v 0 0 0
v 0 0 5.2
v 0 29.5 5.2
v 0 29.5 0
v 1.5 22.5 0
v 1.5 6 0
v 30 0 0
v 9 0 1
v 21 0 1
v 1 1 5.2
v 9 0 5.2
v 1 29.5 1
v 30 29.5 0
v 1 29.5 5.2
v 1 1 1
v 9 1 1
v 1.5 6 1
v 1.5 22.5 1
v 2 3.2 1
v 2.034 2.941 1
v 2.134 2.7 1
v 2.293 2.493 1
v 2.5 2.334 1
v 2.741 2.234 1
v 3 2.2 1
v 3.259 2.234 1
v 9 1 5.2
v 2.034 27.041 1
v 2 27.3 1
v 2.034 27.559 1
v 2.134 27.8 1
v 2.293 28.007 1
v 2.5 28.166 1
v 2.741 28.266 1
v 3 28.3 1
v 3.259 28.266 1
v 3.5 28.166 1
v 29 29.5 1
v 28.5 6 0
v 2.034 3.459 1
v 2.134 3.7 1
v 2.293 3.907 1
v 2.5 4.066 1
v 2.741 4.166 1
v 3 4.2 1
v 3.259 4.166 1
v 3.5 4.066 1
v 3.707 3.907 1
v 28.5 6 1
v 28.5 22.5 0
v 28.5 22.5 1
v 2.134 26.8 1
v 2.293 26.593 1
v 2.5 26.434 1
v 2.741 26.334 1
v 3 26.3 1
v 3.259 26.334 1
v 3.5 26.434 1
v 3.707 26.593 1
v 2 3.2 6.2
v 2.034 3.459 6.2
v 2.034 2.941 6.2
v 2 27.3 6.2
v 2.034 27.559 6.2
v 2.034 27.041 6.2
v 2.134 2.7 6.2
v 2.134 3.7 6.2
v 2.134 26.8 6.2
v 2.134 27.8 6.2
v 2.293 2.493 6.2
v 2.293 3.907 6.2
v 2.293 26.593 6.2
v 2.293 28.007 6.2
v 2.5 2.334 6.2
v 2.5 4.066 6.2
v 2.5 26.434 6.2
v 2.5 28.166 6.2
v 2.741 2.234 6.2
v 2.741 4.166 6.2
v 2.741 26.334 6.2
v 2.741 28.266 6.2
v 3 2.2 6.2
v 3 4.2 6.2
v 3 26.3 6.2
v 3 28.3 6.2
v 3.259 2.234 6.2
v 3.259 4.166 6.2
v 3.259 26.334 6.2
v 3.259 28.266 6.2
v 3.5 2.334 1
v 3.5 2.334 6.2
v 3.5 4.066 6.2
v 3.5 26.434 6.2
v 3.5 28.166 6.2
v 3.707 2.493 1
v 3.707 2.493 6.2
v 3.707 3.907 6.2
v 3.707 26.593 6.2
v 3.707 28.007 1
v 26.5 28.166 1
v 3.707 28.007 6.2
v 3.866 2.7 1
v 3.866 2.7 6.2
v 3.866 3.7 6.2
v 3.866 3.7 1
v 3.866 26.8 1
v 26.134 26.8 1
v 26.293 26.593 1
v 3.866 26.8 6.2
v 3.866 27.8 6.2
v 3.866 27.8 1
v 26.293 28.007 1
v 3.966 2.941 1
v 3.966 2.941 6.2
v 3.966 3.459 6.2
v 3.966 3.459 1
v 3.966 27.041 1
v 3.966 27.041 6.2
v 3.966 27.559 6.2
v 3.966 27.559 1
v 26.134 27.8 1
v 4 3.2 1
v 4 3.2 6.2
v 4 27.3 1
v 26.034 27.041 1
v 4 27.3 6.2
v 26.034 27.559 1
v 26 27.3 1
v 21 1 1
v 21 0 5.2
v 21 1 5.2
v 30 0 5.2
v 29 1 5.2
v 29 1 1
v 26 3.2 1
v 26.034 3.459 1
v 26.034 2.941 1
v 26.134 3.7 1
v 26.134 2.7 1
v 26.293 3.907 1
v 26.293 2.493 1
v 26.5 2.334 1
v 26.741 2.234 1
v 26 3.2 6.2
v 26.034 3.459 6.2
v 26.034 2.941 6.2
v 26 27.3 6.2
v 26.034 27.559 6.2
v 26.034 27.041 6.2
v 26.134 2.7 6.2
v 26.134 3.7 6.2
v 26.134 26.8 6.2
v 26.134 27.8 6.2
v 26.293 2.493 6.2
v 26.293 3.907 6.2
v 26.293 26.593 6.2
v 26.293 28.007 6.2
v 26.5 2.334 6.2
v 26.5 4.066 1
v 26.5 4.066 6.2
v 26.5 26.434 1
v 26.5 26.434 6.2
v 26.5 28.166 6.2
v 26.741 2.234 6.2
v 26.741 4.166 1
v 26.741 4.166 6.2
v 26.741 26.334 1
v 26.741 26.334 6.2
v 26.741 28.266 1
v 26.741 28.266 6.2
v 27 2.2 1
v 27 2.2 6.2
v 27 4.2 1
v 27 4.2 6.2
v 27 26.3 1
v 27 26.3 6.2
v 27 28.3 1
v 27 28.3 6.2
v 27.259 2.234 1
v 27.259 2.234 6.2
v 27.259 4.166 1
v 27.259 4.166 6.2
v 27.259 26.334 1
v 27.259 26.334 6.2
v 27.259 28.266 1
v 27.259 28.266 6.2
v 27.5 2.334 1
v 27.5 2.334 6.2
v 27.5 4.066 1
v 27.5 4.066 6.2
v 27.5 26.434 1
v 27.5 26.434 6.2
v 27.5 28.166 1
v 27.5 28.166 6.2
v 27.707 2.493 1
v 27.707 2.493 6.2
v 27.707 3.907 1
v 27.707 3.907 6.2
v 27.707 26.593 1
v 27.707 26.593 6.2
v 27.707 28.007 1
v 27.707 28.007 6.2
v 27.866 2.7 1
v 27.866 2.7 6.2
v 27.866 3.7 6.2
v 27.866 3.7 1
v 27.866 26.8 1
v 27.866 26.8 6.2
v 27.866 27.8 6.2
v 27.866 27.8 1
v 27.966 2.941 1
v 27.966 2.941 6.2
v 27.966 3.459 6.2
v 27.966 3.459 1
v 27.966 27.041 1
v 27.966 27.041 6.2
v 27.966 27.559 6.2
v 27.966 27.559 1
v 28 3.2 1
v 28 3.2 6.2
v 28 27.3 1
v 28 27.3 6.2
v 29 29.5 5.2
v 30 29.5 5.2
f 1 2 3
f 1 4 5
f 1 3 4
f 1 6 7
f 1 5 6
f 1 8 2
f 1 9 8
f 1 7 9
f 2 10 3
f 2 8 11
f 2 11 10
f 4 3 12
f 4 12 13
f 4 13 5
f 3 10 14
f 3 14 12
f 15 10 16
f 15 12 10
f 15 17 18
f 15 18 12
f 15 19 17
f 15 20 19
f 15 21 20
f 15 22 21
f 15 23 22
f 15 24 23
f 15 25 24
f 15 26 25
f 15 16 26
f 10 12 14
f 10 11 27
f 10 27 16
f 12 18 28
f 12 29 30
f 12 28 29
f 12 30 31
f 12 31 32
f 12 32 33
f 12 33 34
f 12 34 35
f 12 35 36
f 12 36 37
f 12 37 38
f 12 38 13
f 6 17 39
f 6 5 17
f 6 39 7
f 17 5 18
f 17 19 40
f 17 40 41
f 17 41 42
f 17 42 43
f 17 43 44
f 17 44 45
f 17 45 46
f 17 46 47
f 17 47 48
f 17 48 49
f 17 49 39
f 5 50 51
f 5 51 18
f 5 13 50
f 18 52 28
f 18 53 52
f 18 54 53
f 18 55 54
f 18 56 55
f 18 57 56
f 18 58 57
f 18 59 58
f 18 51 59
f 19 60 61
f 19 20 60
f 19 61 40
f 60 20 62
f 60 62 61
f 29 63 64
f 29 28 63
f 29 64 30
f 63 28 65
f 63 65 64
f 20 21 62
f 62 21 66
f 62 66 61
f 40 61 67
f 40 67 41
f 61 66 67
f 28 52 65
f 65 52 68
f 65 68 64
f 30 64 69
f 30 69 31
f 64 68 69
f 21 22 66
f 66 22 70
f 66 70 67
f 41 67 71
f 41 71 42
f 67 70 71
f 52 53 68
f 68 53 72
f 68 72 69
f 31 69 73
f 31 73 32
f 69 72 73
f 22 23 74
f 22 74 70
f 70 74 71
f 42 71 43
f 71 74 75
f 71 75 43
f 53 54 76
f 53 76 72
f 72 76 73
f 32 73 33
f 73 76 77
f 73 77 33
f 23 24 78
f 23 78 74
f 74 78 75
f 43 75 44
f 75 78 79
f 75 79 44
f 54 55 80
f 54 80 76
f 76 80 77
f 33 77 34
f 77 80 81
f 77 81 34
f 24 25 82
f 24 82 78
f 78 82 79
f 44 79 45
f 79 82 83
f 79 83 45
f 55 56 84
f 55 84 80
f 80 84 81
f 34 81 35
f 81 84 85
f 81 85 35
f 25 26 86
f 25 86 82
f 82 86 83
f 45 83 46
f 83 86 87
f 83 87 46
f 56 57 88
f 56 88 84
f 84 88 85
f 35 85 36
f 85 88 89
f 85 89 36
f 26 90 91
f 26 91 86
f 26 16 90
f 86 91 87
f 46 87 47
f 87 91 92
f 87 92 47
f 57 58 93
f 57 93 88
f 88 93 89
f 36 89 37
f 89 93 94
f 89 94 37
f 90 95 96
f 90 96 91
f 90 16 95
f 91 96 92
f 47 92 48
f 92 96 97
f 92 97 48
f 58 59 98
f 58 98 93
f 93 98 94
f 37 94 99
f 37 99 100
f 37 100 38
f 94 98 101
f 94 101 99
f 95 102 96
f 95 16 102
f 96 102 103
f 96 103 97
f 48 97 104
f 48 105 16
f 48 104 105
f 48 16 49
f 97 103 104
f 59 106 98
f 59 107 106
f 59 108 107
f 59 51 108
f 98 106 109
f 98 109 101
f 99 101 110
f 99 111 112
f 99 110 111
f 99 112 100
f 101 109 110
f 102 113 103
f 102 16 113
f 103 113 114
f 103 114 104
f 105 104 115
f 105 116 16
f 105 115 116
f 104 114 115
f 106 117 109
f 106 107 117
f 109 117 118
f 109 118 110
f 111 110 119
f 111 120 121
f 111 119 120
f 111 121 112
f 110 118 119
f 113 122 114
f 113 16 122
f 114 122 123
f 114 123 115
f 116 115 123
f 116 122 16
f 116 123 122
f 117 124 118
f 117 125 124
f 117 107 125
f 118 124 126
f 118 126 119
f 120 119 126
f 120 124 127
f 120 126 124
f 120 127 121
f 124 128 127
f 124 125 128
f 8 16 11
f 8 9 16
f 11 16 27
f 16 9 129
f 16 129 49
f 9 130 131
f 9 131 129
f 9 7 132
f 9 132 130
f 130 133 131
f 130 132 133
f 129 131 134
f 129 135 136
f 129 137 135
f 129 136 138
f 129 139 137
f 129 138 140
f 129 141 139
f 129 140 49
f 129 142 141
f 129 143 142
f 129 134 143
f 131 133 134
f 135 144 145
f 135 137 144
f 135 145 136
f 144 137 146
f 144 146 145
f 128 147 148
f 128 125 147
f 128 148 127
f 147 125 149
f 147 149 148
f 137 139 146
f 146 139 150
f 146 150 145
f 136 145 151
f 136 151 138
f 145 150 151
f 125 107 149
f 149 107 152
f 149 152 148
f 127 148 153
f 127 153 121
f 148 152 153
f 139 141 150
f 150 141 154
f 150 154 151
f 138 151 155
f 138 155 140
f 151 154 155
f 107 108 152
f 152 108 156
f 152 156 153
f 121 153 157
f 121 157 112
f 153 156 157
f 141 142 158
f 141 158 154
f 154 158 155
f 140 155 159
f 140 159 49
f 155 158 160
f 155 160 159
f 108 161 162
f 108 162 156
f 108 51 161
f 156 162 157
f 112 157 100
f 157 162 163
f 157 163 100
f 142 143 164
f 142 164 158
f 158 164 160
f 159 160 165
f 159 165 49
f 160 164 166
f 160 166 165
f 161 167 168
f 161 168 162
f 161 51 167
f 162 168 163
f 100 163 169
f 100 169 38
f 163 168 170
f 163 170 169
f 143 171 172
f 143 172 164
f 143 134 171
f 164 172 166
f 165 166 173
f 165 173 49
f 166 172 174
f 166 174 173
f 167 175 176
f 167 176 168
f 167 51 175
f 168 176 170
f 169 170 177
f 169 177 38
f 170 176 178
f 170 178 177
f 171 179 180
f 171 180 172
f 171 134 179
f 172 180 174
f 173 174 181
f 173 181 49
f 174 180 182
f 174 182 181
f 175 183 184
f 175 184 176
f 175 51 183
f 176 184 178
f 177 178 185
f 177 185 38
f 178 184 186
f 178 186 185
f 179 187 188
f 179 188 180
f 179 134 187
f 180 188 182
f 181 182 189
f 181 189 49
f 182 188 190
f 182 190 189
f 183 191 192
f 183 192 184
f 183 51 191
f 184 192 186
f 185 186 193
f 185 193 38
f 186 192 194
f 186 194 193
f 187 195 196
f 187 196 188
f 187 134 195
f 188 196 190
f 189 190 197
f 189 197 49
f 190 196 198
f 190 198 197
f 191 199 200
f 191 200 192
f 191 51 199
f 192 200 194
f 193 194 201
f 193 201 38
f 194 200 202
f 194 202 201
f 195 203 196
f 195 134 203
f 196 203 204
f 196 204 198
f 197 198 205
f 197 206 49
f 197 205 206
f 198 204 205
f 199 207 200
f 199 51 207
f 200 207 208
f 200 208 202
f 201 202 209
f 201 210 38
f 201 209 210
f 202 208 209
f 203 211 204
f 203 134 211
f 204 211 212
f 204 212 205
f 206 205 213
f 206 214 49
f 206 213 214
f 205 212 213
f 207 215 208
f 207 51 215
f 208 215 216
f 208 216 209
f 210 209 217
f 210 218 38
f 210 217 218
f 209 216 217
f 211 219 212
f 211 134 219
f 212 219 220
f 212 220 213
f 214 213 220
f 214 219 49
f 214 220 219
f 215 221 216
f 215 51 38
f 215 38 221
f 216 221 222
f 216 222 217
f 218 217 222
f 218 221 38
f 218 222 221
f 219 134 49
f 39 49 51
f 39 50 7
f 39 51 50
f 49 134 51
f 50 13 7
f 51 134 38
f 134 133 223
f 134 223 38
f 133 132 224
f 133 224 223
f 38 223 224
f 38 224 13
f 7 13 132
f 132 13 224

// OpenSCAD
// OLED PCB dimensions (you can adjust as needed)
oled_width = 28;
oled_height = 28.5;
oled_thickness = 4.2; // PCB thickness

// Design parameters
wall = 1;             // Side and bottom wall thickness
back_thickness = 1; // Back cover thickness
clearance = 0.5;      // Fit tolerance
pin_diameter = 2;
pin_height = 5.2;
hole_offset_x = 2;
hole_offset_y = 2.2;

// Cutout parameters
cutout_width = 12;
cutout_height = 5;
back_cutout_sizeX=16.5;
back_cutout_sizeY = 27;

module oled() {
    // Main enclosure body with cutouts
    difference() {
        // Solid block
        cube([
            oled_width + 2 * wall,
            oled_height + wall,
            oled_thickness + back_thickness
        ]);

        // Slot for OLED body
        translate([wall, wall, back_thickness])
            cube([
                oled_width,
                oled_height,
                oled_thickness + 0.2
            ]);

        // Side cutout for header pins (bottom edge center)
        translate([
            (oled_width + 2 * wall - cutout_width) / 2,
            0,
            back_thickness
        ])
            cube([cutout_width, wall + 0.1, cutout_height]);

        // Back square hole (centered on the back face)
        translate([
            (oled_width + 2 * wall - back_cutout_sizeY) / 2,
            (oled_height+ (-1) + wall - back_cutout_sizeX) / 2,
            0
        ])
            cube([back_cutout_sizeY, back_cutout_sizeX, back_thickness + 0.1]);
    }

    // Alignment pins (4 total)
    for (x = [hole_offset_x, oled_width - hole_offset_x])
    for (y = [hole_offset_y, oled_height - hole_offset_y])
        translate([x + wall, y + wall, back_thickness])
            cylinder(d = pin_diameter, h = pin_height, $fn = 24);
}

oled();
